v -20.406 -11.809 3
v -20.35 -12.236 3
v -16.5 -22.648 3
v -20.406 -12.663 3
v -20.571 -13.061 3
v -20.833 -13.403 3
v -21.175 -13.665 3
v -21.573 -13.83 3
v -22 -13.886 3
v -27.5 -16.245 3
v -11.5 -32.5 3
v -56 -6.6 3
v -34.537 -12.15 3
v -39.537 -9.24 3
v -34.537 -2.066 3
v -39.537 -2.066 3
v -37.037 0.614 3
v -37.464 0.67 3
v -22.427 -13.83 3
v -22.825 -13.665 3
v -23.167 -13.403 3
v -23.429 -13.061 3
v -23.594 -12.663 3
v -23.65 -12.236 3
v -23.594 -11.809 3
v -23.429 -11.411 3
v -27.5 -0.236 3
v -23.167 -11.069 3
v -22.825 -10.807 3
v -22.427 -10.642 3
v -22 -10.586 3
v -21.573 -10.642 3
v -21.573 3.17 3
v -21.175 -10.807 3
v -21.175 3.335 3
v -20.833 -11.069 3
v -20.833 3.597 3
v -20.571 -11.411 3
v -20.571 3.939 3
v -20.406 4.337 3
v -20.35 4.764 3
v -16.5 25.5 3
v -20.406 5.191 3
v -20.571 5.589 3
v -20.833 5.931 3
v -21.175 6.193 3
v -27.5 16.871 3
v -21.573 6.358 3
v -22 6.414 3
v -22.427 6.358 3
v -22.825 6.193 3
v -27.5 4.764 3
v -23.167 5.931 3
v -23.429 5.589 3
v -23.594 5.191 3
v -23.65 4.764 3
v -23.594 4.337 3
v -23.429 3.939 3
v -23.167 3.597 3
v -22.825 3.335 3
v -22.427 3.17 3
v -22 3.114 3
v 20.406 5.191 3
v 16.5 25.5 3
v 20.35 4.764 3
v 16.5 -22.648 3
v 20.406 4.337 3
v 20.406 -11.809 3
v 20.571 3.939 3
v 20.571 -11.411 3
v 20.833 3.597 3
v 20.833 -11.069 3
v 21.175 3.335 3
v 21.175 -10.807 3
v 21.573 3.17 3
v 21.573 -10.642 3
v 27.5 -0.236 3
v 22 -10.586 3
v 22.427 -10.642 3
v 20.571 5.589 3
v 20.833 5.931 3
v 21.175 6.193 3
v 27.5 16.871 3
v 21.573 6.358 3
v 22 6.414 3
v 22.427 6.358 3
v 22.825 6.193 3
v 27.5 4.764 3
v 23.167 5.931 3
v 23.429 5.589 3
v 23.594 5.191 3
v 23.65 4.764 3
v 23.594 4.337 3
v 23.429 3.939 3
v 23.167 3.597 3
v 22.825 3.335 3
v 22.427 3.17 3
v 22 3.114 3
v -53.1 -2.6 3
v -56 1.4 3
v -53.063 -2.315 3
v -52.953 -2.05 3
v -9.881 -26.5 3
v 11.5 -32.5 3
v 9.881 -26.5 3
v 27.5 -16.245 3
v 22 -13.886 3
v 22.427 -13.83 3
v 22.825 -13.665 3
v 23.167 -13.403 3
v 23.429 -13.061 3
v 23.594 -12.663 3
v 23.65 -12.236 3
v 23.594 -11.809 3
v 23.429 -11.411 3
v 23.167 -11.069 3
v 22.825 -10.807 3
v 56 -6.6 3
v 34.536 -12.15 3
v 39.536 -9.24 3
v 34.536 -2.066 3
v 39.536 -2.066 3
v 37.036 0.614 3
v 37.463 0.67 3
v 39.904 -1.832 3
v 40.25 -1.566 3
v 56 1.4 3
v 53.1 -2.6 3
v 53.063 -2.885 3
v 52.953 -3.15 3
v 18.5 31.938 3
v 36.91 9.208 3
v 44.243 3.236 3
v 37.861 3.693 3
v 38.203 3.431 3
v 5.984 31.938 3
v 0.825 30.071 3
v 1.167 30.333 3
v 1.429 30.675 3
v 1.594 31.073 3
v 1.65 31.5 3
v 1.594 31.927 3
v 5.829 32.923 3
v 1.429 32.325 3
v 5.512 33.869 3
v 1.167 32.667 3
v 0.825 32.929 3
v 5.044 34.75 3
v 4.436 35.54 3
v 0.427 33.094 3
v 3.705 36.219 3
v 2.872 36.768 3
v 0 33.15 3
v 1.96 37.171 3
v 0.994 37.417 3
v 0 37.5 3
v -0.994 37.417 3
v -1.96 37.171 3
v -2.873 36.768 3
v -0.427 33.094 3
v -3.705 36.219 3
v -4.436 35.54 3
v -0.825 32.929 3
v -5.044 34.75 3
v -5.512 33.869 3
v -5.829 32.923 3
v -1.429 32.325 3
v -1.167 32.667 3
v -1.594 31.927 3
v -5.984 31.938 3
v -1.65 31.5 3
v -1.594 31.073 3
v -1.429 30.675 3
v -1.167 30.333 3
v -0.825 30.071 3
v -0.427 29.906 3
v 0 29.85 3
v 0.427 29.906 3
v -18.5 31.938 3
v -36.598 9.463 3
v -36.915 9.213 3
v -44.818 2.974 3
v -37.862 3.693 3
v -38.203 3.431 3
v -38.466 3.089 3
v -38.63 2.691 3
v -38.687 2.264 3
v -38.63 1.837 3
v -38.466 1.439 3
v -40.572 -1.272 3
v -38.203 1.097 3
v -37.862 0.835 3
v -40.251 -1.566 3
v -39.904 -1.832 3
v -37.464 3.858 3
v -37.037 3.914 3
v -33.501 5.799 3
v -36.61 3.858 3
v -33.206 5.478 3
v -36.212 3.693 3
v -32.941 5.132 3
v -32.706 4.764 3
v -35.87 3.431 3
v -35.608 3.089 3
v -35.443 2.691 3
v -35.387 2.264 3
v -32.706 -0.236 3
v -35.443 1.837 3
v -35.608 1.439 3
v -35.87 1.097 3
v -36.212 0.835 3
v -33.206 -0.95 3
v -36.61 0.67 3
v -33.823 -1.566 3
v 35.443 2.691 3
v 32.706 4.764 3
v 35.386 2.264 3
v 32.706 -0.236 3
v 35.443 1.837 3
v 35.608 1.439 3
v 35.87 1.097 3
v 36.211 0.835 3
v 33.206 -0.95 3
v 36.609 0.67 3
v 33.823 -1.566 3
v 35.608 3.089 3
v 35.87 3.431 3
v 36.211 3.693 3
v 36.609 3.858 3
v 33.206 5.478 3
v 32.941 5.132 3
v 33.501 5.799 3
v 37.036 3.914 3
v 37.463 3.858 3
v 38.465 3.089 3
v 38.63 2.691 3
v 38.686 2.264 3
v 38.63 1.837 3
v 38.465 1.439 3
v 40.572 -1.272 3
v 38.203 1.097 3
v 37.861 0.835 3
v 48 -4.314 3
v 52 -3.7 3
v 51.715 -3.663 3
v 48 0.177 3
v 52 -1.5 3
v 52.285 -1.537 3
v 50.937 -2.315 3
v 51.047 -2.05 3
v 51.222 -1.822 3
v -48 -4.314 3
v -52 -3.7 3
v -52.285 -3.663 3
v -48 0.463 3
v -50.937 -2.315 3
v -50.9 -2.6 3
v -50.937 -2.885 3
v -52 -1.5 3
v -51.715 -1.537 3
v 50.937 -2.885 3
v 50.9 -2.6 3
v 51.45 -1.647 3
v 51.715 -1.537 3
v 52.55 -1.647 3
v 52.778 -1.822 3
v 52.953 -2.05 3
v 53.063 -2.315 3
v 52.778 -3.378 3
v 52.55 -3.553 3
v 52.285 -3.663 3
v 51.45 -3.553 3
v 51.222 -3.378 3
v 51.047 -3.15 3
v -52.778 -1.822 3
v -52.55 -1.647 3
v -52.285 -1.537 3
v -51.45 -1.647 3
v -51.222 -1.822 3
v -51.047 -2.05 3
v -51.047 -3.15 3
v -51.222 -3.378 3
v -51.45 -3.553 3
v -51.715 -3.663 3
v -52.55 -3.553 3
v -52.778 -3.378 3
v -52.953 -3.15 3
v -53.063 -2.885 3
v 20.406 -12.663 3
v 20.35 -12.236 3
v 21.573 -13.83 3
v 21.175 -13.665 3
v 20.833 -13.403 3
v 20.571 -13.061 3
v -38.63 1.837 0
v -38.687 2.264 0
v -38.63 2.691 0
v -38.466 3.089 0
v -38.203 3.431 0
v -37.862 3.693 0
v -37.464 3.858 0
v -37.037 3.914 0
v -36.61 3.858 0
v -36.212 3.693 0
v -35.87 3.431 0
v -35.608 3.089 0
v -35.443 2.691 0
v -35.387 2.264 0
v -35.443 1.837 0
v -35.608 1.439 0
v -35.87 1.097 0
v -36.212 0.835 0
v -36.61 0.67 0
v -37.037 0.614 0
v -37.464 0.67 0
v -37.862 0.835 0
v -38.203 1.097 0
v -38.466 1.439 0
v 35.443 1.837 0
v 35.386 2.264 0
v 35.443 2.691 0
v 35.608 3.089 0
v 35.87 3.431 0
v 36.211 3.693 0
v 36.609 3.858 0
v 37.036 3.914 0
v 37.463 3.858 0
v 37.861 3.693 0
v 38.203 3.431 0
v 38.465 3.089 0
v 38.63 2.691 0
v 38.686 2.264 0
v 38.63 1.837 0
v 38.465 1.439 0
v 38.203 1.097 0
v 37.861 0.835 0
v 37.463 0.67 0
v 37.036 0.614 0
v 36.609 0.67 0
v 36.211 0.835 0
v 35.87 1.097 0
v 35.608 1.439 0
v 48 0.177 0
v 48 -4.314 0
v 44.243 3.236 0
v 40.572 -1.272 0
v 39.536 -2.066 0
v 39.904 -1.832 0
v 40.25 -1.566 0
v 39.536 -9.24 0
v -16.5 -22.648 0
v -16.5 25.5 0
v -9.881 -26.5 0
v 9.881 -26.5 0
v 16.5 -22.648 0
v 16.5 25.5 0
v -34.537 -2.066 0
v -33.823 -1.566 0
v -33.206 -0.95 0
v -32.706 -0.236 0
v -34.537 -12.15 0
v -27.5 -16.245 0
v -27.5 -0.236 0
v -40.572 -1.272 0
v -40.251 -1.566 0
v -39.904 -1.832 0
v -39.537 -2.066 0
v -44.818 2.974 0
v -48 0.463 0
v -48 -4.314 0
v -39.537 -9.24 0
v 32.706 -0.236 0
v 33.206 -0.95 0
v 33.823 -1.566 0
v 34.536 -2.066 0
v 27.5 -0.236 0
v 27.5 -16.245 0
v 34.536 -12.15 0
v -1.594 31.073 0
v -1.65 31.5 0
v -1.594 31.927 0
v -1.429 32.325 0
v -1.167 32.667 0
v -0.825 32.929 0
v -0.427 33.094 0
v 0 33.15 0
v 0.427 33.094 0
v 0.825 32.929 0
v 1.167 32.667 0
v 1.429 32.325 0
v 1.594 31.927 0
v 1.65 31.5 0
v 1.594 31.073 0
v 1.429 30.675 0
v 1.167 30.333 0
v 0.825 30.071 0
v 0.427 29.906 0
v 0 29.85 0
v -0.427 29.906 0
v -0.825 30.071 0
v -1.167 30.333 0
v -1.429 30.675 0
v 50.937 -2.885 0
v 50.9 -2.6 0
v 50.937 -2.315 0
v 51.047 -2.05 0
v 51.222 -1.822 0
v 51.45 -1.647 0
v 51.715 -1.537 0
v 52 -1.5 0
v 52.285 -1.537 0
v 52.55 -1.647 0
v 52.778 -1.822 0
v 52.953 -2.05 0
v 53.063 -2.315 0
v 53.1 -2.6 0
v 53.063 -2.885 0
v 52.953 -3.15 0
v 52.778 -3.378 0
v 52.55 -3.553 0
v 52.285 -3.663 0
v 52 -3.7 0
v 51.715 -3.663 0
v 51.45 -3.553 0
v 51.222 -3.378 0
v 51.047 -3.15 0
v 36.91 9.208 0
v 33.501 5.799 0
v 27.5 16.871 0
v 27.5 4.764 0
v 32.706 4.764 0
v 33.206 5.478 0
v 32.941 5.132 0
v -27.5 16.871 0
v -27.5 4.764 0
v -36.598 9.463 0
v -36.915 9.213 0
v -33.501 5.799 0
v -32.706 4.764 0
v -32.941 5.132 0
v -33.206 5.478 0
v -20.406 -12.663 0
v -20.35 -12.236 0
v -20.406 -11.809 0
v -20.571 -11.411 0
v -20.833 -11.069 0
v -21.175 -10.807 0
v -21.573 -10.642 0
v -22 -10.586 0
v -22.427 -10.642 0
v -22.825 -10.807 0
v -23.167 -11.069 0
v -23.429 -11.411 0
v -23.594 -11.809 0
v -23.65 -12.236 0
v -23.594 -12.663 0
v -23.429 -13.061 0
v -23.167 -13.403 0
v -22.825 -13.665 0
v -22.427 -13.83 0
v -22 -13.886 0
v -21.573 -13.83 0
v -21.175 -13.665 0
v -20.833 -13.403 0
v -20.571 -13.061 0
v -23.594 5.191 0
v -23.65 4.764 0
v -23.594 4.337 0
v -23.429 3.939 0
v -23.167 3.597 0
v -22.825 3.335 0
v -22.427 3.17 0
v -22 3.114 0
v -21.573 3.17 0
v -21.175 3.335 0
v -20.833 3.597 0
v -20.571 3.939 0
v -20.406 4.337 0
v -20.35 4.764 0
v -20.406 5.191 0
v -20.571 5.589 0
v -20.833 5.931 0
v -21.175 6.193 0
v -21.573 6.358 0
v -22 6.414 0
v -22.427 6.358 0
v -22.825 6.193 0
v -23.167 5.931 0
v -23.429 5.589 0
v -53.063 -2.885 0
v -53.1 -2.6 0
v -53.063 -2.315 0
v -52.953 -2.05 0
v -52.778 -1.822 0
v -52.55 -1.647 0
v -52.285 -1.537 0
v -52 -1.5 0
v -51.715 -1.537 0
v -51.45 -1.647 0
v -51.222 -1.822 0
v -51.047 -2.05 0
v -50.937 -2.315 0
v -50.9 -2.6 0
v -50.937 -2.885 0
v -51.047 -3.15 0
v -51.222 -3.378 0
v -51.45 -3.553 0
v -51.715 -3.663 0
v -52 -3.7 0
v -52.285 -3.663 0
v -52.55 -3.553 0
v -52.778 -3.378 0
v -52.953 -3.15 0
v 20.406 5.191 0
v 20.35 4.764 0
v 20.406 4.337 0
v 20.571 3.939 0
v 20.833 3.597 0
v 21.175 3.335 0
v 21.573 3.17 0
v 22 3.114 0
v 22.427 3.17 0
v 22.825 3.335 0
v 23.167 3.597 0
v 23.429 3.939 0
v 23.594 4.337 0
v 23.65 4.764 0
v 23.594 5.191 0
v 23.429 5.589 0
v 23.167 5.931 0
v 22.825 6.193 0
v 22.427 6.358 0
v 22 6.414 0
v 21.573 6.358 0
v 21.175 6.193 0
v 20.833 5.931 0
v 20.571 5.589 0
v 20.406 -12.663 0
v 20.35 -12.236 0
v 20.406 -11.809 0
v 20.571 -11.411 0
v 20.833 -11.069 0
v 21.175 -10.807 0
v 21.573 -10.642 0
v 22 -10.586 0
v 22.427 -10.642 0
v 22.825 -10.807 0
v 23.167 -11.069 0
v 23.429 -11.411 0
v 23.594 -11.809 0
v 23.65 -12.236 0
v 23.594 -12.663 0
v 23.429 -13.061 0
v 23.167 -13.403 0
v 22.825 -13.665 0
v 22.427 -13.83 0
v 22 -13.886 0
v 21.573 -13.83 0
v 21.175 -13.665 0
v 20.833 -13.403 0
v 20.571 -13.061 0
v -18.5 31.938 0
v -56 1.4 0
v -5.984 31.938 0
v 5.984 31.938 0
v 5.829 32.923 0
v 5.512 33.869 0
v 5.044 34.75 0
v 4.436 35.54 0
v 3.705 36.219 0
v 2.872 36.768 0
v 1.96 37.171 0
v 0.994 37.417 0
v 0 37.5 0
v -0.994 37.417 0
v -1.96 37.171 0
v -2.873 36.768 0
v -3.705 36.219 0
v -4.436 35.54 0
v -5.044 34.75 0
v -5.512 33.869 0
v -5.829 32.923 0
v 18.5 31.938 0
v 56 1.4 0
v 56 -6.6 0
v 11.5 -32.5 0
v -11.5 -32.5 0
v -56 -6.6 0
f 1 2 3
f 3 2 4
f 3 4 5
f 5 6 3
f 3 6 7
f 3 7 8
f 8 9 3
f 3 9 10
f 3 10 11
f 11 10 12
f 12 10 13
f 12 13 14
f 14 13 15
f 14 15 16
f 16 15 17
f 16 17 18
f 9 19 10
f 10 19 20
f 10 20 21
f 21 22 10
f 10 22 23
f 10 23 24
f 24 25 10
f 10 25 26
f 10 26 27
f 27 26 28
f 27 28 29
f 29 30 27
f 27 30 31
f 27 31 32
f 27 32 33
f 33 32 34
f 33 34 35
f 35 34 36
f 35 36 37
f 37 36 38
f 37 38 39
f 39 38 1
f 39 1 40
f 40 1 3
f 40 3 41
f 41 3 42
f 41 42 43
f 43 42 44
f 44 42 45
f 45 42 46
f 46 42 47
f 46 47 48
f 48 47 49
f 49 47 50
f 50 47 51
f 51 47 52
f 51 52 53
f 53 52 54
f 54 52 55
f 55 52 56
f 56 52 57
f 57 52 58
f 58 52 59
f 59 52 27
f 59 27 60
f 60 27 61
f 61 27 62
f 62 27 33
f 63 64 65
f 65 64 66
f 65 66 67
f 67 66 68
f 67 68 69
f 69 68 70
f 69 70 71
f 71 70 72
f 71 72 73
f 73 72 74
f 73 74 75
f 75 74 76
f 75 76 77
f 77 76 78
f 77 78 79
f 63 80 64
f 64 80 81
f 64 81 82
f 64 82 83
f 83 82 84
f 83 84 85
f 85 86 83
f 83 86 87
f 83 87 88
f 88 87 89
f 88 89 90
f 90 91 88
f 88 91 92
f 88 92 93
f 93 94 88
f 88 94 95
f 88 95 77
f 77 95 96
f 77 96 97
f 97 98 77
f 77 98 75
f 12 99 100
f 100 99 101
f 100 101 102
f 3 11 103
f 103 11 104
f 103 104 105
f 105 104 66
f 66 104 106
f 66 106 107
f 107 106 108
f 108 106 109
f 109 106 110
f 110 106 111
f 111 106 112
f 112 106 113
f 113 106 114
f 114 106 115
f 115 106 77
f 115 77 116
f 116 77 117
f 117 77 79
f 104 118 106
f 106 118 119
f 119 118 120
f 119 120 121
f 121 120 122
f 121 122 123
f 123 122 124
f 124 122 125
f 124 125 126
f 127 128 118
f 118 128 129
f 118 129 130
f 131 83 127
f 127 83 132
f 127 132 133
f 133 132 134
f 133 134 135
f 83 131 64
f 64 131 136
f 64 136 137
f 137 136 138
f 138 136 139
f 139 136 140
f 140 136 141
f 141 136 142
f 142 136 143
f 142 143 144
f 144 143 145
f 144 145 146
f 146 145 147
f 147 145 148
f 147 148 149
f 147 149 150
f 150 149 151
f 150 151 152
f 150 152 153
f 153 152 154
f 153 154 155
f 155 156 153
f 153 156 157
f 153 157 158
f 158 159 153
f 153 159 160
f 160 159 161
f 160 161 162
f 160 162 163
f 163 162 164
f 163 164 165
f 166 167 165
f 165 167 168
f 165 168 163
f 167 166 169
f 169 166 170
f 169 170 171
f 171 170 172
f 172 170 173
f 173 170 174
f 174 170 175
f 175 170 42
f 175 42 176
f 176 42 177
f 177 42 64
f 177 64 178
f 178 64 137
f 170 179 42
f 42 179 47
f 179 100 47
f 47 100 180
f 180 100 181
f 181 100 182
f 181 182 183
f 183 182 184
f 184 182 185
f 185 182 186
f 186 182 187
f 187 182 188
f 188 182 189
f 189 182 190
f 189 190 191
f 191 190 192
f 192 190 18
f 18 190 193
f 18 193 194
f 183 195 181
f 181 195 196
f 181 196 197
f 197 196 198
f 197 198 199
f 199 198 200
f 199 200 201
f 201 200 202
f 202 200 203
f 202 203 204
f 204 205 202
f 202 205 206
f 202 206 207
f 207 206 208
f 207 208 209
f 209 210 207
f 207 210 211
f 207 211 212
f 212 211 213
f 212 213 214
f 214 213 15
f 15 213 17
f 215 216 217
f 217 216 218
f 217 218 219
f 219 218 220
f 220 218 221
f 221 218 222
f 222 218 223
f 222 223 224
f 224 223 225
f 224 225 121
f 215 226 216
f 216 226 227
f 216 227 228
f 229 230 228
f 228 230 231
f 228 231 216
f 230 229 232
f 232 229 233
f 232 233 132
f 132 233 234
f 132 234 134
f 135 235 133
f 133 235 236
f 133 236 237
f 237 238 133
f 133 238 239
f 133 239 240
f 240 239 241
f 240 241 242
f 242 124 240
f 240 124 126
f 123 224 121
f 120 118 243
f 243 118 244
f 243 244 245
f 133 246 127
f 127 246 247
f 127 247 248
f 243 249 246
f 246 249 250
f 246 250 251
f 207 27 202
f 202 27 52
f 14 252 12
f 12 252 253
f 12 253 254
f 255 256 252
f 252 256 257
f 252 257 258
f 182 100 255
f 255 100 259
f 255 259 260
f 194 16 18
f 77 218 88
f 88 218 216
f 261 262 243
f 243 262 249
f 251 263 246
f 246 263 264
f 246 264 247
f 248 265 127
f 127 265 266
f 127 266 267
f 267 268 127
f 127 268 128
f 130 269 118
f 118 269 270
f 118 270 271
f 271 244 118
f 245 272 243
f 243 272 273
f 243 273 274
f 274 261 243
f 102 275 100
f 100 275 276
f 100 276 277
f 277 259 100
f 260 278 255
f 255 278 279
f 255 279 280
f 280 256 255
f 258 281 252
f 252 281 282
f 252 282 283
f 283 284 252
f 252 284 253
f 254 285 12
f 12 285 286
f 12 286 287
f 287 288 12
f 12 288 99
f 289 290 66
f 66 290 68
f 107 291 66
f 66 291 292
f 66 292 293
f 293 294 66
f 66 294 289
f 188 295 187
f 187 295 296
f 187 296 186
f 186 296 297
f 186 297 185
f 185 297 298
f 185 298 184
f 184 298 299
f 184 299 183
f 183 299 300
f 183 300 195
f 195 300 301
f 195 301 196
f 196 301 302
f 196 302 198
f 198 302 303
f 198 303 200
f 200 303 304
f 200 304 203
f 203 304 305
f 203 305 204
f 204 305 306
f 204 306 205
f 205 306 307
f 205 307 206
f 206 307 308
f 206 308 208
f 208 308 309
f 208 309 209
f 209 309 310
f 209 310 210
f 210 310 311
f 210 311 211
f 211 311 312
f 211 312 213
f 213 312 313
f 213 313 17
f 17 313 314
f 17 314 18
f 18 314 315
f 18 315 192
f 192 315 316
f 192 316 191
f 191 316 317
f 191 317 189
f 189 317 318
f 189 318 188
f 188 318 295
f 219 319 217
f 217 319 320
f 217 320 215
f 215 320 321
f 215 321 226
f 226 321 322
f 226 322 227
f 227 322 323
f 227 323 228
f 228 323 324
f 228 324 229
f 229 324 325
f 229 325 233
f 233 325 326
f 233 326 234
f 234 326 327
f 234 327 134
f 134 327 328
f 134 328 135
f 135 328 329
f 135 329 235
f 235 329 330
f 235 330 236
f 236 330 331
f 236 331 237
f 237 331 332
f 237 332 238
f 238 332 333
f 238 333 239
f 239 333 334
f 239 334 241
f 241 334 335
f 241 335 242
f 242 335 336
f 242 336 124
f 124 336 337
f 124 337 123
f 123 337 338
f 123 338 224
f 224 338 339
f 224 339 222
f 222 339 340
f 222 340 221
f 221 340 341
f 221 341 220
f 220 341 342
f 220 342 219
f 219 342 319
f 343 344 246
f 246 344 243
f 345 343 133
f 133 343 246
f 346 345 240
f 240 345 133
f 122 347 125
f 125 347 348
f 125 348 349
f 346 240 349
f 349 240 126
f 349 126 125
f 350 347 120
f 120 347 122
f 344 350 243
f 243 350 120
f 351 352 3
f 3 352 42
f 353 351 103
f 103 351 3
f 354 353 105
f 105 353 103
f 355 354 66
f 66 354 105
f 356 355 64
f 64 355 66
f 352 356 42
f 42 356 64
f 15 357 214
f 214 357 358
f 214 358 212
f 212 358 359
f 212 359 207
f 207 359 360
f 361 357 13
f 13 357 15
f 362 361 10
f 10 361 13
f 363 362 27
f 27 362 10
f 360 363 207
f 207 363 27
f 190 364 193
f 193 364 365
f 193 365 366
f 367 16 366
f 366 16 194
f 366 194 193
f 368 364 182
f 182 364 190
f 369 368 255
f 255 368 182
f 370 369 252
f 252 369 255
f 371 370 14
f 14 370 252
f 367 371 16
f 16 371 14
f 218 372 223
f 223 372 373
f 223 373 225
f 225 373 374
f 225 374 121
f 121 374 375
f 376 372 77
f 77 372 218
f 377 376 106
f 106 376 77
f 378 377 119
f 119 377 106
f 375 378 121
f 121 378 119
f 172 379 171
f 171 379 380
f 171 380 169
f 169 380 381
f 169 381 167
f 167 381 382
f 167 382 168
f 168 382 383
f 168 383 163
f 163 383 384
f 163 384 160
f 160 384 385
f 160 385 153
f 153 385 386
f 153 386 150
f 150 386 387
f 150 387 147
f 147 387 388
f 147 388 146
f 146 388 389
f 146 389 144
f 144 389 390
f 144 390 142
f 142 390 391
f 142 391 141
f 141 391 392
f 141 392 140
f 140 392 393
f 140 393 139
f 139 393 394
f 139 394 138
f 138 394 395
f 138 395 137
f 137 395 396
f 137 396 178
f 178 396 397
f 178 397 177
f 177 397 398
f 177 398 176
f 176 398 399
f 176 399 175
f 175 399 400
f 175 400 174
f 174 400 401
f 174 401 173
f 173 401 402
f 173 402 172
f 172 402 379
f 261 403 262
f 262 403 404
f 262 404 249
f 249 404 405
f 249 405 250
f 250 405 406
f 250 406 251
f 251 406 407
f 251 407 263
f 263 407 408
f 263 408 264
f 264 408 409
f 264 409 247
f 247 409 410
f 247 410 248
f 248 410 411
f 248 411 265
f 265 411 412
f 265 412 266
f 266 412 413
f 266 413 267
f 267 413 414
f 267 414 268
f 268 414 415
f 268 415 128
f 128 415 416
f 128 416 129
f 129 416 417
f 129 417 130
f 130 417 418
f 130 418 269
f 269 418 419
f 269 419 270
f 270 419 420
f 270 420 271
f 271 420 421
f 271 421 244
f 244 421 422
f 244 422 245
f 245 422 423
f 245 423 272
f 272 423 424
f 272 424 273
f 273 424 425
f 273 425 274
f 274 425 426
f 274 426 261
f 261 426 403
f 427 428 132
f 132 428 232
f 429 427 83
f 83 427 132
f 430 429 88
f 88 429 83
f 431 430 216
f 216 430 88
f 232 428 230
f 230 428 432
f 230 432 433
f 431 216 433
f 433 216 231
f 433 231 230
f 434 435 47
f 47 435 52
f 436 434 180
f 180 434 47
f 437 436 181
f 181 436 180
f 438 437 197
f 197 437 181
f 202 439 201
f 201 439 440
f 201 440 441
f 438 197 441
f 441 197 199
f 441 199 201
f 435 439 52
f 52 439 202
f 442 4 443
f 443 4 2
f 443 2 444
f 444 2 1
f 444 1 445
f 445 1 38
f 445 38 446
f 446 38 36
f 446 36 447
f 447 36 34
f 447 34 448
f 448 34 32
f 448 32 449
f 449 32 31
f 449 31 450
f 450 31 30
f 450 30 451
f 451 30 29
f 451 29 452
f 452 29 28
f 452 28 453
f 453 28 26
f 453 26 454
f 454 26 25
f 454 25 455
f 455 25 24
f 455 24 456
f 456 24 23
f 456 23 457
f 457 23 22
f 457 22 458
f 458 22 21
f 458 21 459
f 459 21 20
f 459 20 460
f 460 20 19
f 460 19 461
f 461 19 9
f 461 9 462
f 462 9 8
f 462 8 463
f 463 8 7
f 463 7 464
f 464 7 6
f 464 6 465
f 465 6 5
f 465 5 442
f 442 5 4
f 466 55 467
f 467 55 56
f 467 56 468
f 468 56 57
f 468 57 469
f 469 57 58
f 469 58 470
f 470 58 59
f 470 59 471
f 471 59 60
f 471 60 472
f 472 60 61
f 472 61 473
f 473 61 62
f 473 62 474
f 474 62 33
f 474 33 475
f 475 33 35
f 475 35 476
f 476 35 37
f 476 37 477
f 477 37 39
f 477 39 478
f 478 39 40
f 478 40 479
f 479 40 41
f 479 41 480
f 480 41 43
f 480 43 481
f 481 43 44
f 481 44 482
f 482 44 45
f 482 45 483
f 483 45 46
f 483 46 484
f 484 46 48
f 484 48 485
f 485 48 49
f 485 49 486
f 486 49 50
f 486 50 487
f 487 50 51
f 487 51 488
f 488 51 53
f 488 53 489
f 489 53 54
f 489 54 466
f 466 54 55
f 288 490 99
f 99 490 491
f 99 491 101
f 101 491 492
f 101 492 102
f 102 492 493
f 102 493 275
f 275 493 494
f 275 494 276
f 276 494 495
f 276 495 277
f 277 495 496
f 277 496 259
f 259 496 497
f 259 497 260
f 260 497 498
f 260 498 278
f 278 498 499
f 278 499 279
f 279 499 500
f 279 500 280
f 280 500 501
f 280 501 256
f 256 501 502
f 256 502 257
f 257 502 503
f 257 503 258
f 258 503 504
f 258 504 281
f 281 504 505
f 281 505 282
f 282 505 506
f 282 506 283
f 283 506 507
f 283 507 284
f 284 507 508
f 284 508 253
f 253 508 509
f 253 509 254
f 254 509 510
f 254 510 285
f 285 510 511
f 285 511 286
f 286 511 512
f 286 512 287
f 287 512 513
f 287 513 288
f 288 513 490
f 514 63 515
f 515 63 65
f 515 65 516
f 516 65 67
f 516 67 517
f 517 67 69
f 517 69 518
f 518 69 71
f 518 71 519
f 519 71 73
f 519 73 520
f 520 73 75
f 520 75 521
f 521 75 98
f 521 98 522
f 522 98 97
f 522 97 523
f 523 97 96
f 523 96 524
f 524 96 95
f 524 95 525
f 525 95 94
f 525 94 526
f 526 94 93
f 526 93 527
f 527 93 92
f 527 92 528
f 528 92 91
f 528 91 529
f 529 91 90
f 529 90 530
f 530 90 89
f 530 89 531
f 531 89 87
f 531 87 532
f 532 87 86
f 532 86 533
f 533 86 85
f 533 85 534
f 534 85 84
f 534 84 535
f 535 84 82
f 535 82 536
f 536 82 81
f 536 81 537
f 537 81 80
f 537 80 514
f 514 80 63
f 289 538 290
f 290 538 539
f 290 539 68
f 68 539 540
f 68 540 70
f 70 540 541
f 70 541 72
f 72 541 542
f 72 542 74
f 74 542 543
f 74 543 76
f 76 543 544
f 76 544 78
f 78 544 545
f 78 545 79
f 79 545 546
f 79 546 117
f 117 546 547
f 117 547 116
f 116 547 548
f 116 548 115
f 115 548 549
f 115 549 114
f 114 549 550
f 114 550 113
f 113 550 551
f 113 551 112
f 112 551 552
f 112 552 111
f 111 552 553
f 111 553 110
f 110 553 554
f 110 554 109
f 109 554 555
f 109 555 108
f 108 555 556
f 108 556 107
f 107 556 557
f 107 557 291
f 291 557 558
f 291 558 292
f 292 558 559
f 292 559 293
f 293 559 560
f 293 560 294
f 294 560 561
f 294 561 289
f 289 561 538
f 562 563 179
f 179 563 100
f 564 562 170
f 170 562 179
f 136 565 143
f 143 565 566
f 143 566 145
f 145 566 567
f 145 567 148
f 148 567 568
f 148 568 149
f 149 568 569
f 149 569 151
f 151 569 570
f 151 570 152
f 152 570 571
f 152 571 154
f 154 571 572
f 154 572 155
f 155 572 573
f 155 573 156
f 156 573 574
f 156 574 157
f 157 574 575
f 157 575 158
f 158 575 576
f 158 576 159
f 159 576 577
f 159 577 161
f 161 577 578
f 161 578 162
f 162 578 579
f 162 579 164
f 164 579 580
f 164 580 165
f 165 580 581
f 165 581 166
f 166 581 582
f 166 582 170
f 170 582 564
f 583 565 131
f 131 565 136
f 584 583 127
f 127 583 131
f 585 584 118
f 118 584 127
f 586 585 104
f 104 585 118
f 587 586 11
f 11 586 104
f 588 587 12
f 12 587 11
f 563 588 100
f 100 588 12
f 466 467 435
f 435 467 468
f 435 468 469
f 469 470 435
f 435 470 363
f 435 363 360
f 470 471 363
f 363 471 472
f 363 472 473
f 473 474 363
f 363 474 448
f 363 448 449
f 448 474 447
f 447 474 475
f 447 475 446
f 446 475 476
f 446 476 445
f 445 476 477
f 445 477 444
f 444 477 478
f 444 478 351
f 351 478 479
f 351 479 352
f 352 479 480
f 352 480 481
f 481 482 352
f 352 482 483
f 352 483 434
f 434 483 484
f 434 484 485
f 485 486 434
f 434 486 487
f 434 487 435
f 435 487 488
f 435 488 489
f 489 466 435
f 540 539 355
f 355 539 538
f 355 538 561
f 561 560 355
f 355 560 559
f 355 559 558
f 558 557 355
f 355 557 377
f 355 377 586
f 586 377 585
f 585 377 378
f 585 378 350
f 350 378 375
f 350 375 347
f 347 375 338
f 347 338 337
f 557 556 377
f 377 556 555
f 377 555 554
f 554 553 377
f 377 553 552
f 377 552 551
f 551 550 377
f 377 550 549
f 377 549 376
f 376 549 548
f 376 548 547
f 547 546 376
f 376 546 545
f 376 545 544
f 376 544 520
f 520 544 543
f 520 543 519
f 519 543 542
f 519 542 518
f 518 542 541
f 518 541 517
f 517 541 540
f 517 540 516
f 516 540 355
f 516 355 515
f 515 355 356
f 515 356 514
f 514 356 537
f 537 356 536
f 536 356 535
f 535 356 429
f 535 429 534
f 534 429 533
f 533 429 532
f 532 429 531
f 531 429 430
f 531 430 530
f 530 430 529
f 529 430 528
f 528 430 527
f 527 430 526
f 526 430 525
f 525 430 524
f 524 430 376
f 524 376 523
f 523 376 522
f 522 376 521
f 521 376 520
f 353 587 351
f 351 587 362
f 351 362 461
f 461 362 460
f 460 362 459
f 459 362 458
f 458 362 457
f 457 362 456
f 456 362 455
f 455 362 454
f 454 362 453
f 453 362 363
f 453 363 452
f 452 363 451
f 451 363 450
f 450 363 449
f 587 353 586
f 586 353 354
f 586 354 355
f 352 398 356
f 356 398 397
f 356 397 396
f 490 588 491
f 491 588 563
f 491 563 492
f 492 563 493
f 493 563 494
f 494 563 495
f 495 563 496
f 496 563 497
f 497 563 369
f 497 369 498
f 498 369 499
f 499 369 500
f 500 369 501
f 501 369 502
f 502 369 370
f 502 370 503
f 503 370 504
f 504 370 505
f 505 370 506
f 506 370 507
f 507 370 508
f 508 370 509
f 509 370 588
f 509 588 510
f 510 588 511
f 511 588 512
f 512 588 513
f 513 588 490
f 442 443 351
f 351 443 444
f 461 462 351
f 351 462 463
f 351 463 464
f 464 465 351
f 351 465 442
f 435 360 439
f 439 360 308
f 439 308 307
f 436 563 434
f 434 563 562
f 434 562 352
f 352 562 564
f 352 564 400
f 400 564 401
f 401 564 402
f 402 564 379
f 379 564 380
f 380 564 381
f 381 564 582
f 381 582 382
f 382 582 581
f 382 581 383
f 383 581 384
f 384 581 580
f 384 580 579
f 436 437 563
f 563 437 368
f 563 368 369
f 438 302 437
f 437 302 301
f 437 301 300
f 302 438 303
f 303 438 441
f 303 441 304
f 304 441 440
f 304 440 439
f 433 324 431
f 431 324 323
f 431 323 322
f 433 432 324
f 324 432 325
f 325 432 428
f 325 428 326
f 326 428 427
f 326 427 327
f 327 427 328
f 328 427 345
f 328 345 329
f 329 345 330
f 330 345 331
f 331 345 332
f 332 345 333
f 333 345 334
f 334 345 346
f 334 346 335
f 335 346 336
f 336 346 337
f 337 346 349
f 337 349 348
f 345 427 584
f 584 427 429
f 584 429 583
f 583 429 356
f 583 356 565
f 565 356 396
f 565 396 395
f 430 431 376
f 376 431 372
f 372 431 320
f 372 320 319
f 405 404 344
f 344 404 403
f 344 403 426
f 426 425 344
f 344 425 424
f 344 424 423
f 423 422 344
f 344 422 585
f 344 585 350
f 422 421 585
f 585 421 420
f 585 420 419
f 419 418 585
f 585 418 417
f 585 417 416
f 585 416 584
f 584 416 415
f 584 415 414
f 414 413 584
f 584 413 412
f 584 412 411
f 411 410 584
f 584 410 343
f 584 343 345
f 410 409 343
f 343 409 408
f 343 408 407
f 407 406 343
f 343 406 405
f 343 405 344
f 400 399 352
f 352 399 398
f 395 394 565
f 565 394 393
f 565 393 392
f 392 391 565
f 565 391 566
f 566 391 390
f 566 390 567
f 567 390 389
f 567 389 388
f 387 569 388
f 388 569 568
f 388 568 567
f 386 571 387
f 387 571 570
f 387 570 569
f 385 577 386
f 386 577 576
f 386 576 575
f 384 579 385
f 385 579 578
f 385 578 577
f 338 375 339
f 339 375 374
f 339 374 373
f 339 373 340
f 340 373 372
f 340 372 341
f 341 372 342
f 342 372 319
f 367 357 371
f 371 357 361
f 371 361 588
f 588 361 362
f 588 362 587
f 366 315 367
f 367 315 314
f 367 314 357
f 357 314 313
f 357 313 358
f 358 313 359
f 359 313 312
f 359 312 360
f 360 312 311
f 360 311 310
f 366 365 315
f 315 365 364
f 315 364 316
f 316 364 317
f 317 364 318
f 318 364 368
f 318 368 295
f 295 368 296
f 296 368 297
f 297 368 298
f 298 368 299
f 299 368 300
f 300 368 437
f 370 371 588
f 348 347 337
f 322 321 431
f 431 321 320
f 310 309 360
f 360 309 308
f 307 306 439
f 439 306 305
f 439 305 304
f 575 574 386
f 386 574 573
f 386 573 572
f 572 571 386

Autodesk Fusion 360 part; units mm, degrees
sketch "Sketch1" plane through (0, 0, 0) normal (0, 0, 1) x (1, 0, 0)
  line L0 (-0.0001, 25.5) -> (-0.0001, 31.5)
  circle A0 centre (-0.0001, 31.5) radius 1.65
  circle A1 centre (-0.0001, 31.5) radius 6
  line L1 (37.0364, 2.2639) -> (-37.0366, 2.2639)
  circle A2 centre (37.0364, 2.2639) radius 1.65
  circle A3 centre (-37.0366, 2.2639) radius 1.65
  line L2 (-0.0001, 31.5) -> (37.0364, 2.2639)
  line L3 (-0.0001, 31.5) -> (-37.0366, 2.2639)
  line L4 (56, 1.4) -> (56, -6.6)
  line L5 (-56, -6.6) -> (-56, 1.4)
  line L6 (-18.5, 31.9382) -> (18.5, 31.9382)
  line L7 (11.4999, -32.5) -> (-11.5001, -32.5)
  line L8 (-11.5001, -32.5) -> (-56, -6.6)
  line L9 (11.4999, -32.5) -> (56, -6.6)
  line L10 (56, -2.6) -> (52, -2.6)
  circle A4 centre (52, -2.6) radius 1.1
  line L11 (-56, -2.6) -> (-52, -2.6)
  circle A5 centre (-52, -2.6) radius 1.1
  line L12 (-22.0001, 4.7639) -> (-22.0001, 2.2639)
  line L13 (-0.0001, 2.2639) -> (-22.0001, 2.2639)
  line L14 (-22.0001, 2.2639) -> (-22.0001, 4.7639)
  line L15 (-22.0001, 4.7639) -> (-0.0001, 4.7639)
  line L16 (-0.0001, 4.7639) -> (-0.0001, 2.2639)
  line L17 (-0.0001, 4.7639) -> (21.9999, 4.7639)
  line L18 (21.9999, 4.7639) -> (21.9999, 2.2639)
  line L19 (21.9999, 2.2639) -> (-0.0001, 2.2639)
  line L20 (-0.0001, 2.2639) -> (-0.0001, 4.7639)
  circle A6 centre (-22.0001, 4.7639) radius 1.65
  circle A7 centre (21.9999, 4.7639) radius 1.65
  line L21 (21.9999, 4.7639) -> (21.9999, -12.2361)
  line L22 (-22.0001, 4.7639) -> (-22.0001, -12.2361)
  circle A8 centre (21.9999, -12.2361) radius 1.65
  circle A9 centre (-22.0001, -12.2361) radius 1.65
  circle A10 centre (-22.0001, -12.2361) radius 5.5
  circle A11 centre (-22.0001, 4.7639) radius 5.5
  line L23 (-27.5001, -17.7361) -> (-16.5001, -17.7361)
  line L24 (-16.5001, -17.7361) -> (-16.5001, 10.2639)
  line L25 (-16.5001, 10.2639) -> (-27.5001, 10.2639)
  line L26 (-27.5001, 10.2639) -> (-27.5001, -17.7361)
  line L27 (27.4999, -17.7361) -> (27.4999, 10.2639)
  line L28 (27.4999, 10.2639) -> (16.4999, 10.2639)
  line L29 (16.4999, 10.2639) -> (16.4999, -17.7361)
  line L30 (16.4999, -17.7361) -> (27.4999, -17.7361)
  line L31 (56, -6.6) -> (48, -6.6)
  line L32 (48, -6.6) -> (48, 1.4)
  line L33 (48, 1.4) -> (56, 1.4)
  line L34 (56, 1.4) -> (56, -6.6)
  line L35 (-56, -6.6) -> (-48, -6.6)
  line L36 (-48, -6.6) -> (-48, 1.4)
  line L37 (-48, 1.4) -> (-56, 1.4)
  line L38 (-56, 1.4) -> (-56, -6.6)
  line L39 (-20.5229, -27.2485) -> (-17.5048, -22.0629)
  line L40 (-40.4384, -15.6572) -> (-37.4202, -10.4716)
  line L41 (-17.5048, -22.0629) -> (-37.4202, -10.4716)
  line L42 (-37.4202, -10.4716) -> (-48, -4.3139)
  line L43 (-17.5048, -22.0629) -> (-11.5001, -25.5578)
  line L44 (22.8887, -25.8715) -> (19.8706, -20.6859)
  line L45 (39.4309, -16.2436) -> (36.4127, -11.058)
  line L46 (36.4127, -11.058) -> (19.8706, -20.6859)
  line L47 (36.4127, -11.058) -> (48, -4.3139)
  line L48 (19.8706, -20.6859) -> (11.4999, -25.5578)
  line L49 (56, 1.4) -> (18.5, 31.9382)
  line L50 (45.76, 9.7389) -> (41.9713, 5.0865)
  line L51 (31.8969, 21.0284) -> (28.1081, 16.376)
  line L52 (41.9713, 5.0865) -> (28.1081, 16.376)
  line L53 (28.1081, 16.376) -> (15.6762, 26.5)
  line L54 (41.9713, 5.0865) -> (48, 0.177)
  circle A12 centre (37.0364, 2.2639) radius 5
  line L55 (32.0364, -2.7361) -> (42.0364, -2.7361)
  line L56 (42.0364, -2.7361) -> (42.0364, 7.2639)
  line L57 (42.0364, 7.2639) -> (32.0364, 7.2639)
  line L58 (32.0364, 7.2639) -> (32.0364, -2.7361)
  line L59 (42.0364, -2.7361) -> (37.0364, 2.2639)
  line L60 (32.0364, 7.2639) -> (37.0364, 2.2639)
  line L61 (40.572, -1.2717) -> (44.2431, 3.2364)
  line L62 (33.5009, 5.7994) -> (36.9098, 9.2083)
  line L63 (-56, 1.4) -> (-18.5, 31.9382)
  line L64 (-30.0227, 22.5547) -> (-26.234, 17.9022)
  line L65 (-40.3156, 14.1727) -> (-36.5979, 9.4632)
  line L66 (-26.234, 17.9022) -> (-36.5979, 9.4632)
  line L67 (-36.5979, 9.4632) -> (-48, 0.4625)
  line L68 (-26.234, 17.9022) -> (-15.6762, 26.5)
  line L69 (7.8699, -32.5) -> (7.8699, -26.5)
  line L70 (-4.112, -32.5) -> (-4.112, -26.5)
  line L71 (7.8699, -26.5) -> (-4.112, -26.5)
  line L72 (11.4999, -25.5578) -> (9.881, -26.5)
  line L73 (9.881, -26.5) -> (7.8699, -26.5)
  line L74 (-4.112, -26.5) -> (-9.8811, -26.5)
  line L75 (-9.8811, -26.5) -> (-11.5001, -25.5578)
  line L76 (16.4999, -17.7361) -> (16.4999, -22.6477)
  line L77 (-16.5001, -17.7361) -> (-16.5001, -22.6477)
  line L78 (27.4999, 10.2639) -> (27.4999, 16.8713)
  line L79 (-27.5001, 10.2639) -> (-27.5001, 16.8713)
  line L80 (-0.0001, 25.5) -> (16.9042, 25.5)
  line L81 (16.4999, 10.2639) -> (16.4999, 25.5)
  line L82 (-0.0001, 25.5) -> (-16.9042, 25.5)
  line L83 (-16.5001, 10.2639) -> (-16.5001, 25.5)
  line L84 (-42.0366, 7.2639) -> (-37.0366, 7.2639)
  line L85 (-37.0366, 7.2639) -> (-37.0366, 2.2639)
  line L86 (-32.0366, -2.7361) -> (-42.0366, -2.7361)
  line L87 (-42.0366, -2.7361) -> (-42.0366, 7.2639)
  line L88 (-42.0366, 7.2639) -> (-32.0366, 7.2639)
  line L89 (-32.0366, 7.2639) -> (-32.0366, -2.7361)
  line L90 (-32.0366, 7.2639) -> (-42.0366, -2.7361)
  circle A13 centre (-37.0366, 2.2639) radius 5
  line L91 (-33.501, 5.7994) -> (-36.9147, 9.2131)
  line L92 (-40.5721, -1.2717) -> (-44.8181, 2.9743)
  line L93 (37.0364, -2.7361) -> (34.5364, -2.7361)
  line L94 (37.0364, -2.7361) -> (39.5364, -2.7361)
  line L95 (39.5364, -2.7361) -> (39.5364, -9.2399)
  line L96 (39.5364, -2.7361) -> (39.5364, -2.0663)
  line L97 (34.5364, -2.7361) -> (34.5364, -2.0663)
  line L98 (34.5364, -2.7361) -> (34.5364, -12.15)
  line L99 (32.0364, 2.2639) -> (32.0364, 4.7639)
  line L100 (32.0364, 4.7639) -> (27.4999, 4.7639)
  line L101 (32.0364, 2.2639) -> (32.0364, -0.2361)
  line L102 (32.0364, -0.2361) -> (27.4999, -0.2361)
  line L103 (32.0364, -0.2361) -> (32.7063, -0.2361)
  line L104 (32.0364, 4.7639) -> (32.7063, 4.7639)
  line L105 (-32.0366, -0.2361) -> (-27.5001, -0.2361)
  line L106 (-32.0366, 4.7639) -> (-27.5001, 4.7639)
  line L107 (-32.0366, 4.7639) -> (-32.7064, 4.7639)
  line L108 (-32.0366, -0.2361) -> (-32.7064, -0.2361)
  line L109 (-37.0366, -2.7361) -> (-39.5366, -2.7361)
  line L110 (-37.0366, -2.7361) -> (-34.5366, -2.7361)
  line L111 (-34.5366, -2.7361) -> (-34.5366, -12.15)
  line L112 (-39.5366, -2.7361) -> (-39.5366, -9.2398)
  line L113 (23.6499, -12.2361) -> (20.3499, -12.2361)
  line L114 (20.3499, -12.2361) -> (20.3499, 4.7639)
  line L115 (20.3499, 4.7639) -> (23.6499, 4.7639)
  line L116 (23.6499, 4.7639) -> (23.6499, -12.2361)
  line L117 (-20.3501, -12.2361) -> (-23.6501, -12.2361)
  line L118 (-23.6501, -12.2361) -> (-23.6501, 4.7639)
  line L119 (-23.6501, 4.7639) -> (-20.3501, 4.7639)
  line L120 (-20.3501, 4.7639) -> (-20.3501, -12.2361)
  line L121 (-34.5366, -2.7361) -> (-34.5366, -2.0663)
  line L122 (-39.5366, -2.7361) -> (-39.5366, -2.0663)
  dimension "d3" = 6
  dimension "d4" = 3.3
  dimension "d5" = 12
  dimension "d20" = 3.3
  dimension "d21" = 3.3
  dimension "d24" = 112
  dimension "d25" = 8
  dimension "d26" = 37
  dimension "d30" = 2.2
  dimension "d31" = 4
  dimension "d32" = 4
  dimension "d33" = 2.2
  dimension "d36" = 22
  dimension "d37" = 2.5
  dimension "d38" = 22
  dimension "d39" = 2.5
  dimension "d41" = 3.3
  dimension "d42" = 3.3
  dimension "d58" = 17
  dimension "d59" = 17
  dimension "d60" = 3.3
  dimension "d61" = 3.3
  dimension "d62" = 11
  dimension "d63" = 11
  dimension "d64" = 8
  dimension "d65" = 8
  dimension "d66" = 6
  dimension "d67" = 6
  dimension "d68" = 6
  dimension "d69" = 6
  dimension "d70" = 6
  dimension "d71" = 6
  dimension "d72" = 10
  dimension "d73" = 6
  dimension "d74" = 6
  dimension "d75" = 6
  dimension "d76" = 6
  dimension "d79" = 5
  dimension "d82" = 10
  dimension "d83" = 2.5
  dimension "d84" = 2.5
  dimension "d85" = 2.5
  dimension "d86" = 2.5
  dimension "d87" = 2.5
  dimension "d88" = 2.5
sketch "Sketch1 (2)" plane through (0, 0, 0) normal (0, 0, 1) x (1, 0, 0) in component "carBodyServoPlate"
  line L0 (11.4999, -32.5) -> (-11.5001, -32.5)
  line L1 (-32.0366, -0.2361) -> (-27.5001, -0.2361)
  line L2 (-26.234, 17.9022) -> (-15.6762, 26.5)
  line L3 (-37.0366, 7.2639) -> (-37.0366, 2.2639)
  line L4 (-48, 1.4) -> (-56, 1.4)
  line L5 (-22.0001, 2.2639) -> (-22.0001, 4.7639)
  line L6 (-40.3156, 14.1727) -> (-36.5979, 9.4632)
  circle A0 centre (-22.0001, 4.7639) radius 1.65
  line L7 (-0.0001, 25.5) -> (-16.9042, 25.5)
  line L8 (-32.0366, 4.7639) -> (-32.7064, 4.7639)
  line L9 (-56, 1.4) -> (-18.5, 31.9382)
  line L10 (-0.0001, 4.7639) -> (21.9999, 4.7639)
  circle A1 centre (-37.0366, 2.2639) radius 1.65
  line L11 (-32.0366, 4.7639) -> (-27.5001, 4.7639)
  line L12 (-42.0366, 7.2639) -> (-32.0366, 7.2639)
  line L13 (-36.5979, 9.4632) -> (-48, 0.4625)
  line L14 (-32.0366, -0.2361) -> (-32.7064, -0.2361)
  line L15 (27.4999, 10.2639) -> (27.4999, 16.8713)
  line L16 (37.0364, -2.7361) -> (34.5364, -2.7361)
  line L17 (39.4309, -16.2436) -> (36.4127, -11.058)
  line L18 (16.4999, -17.7361) -> (16.4999, -22.6477)
  line L19 (32.0364, 2.2639) -> (32.0364, 4.7639)
  line L20 (-34.5366, -2.7361) -> (-34.5366, -2.0663)
  line L21 (32.0364, 2.2639) -> (32.0364, -0.2361)
  line L22 (28.1081, 16.376) -> (15.6762, 26.5)
  circle A2 centre (-22.0001, -12.2361) radius 5.5
  line L23 (-40.4384, -15.6572) -> (-37.4202, -10.4716)
  line L24 (32.0364, -2.7361) -> (42.0364, -2.7361)
  line L25 (45.76, 9.7389) -> (41.9713, 5.0865)
  line L26 (31.8969, 21.0284) -> (28.1081, 16.376)
  line L27 (-34.5366, -2.7361) -> (-34.5366, -12.15)
  line L28 (42.0364, 7.2639) -> (32.0364, 7.2639)
  line L29 (-27.5001, -17.7361) -> (-16.5001, -17.7361)
  line L30 (-4.112, -26.5) -> (-9.8811, -26.5)
  line L31 (27.4999, 10.2639) -> (16.4999, 10.2639)
  line L32 (-20.5229, -27.2485) -> (-17.5048, -22.0629)
  line L33 (-20.3501, -12.2361) -> (-23.6501, -12.2361)
  line L34 (32.0364, 4.7639) -> (27.4999, 4.7639)
  line L35 (39.5364, -2.7361) -> (39.5364, -9.2399)
  circle A3 centre (-52, -2.6) radius 1.1
  circle A4 centre (-22.0001, -12.2361) radius 1.65
  line L36 (32.0364, -0.2361) -> (32.7063, -0.2361)
  line L37 (32.0364, 7.2639) -> (37.0364, 2.2639)
  line L38 (39.5364, -2.7361) -> (39.5364, -2.0663)
  line L39 (7.8699, -32.5) -> (7.8699, -26.5)
  line L40 (-16.5001, -17.7361) -> (-16.5001, -22.6477)
  line L41 (11.4999, -25.5578) -> (9.881, -26.5)
  line L42 (36.4127, -11.058) -> (48, -4.3139)
  line L43 (36.4127, -11.058) -> (19.8706, -20.6859)
  circle A5 centre (21.9999, 4.7639) radius 1.65
  line L44 (-56, -2.6) -> (-52, -2.6)
  circle A6 centre (52, -2.6) radius 1.1
  line L45 (-4.112, -32.5) -> (-4.112, -26.5)
  line L46 (32.0364, 4.7639) -> (32.7063, 4.7639)
  circle A7 centre (37.0364, 2.2639) radius 1.65
  line L47 (34.5364, -2.7361) -> (34.5364, -12.15)
  line L48 (20.3499, 4.7639) -> (23.6499, 4.7639)
  line L49 (-39.5366, -2.7361) -> (-39.5366, -9.2398)
  line L50 (33.5009, 5.7994) -> (36.9098, 9.2083)
  line L51 (23.6499, -12.2361) -> (20.3499, -12.2361)
  line L52 (41.9713, 5.0865) -> (28.1081, 16.376)
  line L53 (-32.0366, 7.2639) -> (-42.0366, -2.7361)
  line L54 (-37.0366, -2.7361) -> (-39.5366, -2.7361)
  line L55 (41.9713, 5.0865) -> (48, 0.177)
  line L56 (-11.5001, -32.5) -> (-56, -6.6)
  line L57 (22.8887, -25.8715) -> (19.8706, -20.6859)
  line L58 (-20.3501, 4.7639) -> (-20.3501, -12.2361)
  line L59 (-23.6501, -12.2361) -> (-23.6501, 4.7639)
  line L60 (-9.8811, -26.5) -> (-11.5001, -25.5578)
  line L61 (-22.0001, 4.7639) -> (-22.0001, -12.2361)
  line L62 (21.9999, 4.7639) -> (21.9999, -12.2361)
  line L63 (-56, -6.6) -> (-56, 1.4)
  line L64 (20.3499, -12.2361) -> (20.3499, 4.7639)
  line L65 (56, 1.4) -> (56, -6.6)
  line L66 (-40.5721, -1.2717) -> (-44.8181, 2.9743)
  line L67 (42.0364, -2.7361) -> (42.0364, 7.2639)
  line L68 (42.0364, -2.7361) -> (37.0364, 2.2639)
  line L69 (-56, 1.4) -> (-56, -6.6)
  line L70 (-32.0366, -2.7361) -> (-42.0366, -2.7361)
  line L71 (-39.5366, -2.7361) -> (-39.5366, -2.0663)
  line L72 (56, 1.4) -> (56, -6.6)
  line L73 (16.4999, -17.7361) -> (27.4999, -17.7361)
  line L74 (-17.5048, -22.0629) -> (-11.5001, -25.5578)
  circle A8 centre (-37.0366, 2.2639) radius 5
  line L75 (56, 1.4) -> (18.5, 31.9382)
  line L76 (-27.5001, 10.2639) -> (-27.5001, -17.7361)
  line L77 (-56, -6.6) -> (-48, -6.6)
  line L78 (-0.0001, 4.7639) -> (-0.0001, 2.2639)
  line L79 (16.4999, 10.2639) -> (16.4999, 25.5)
  line L80 (27.4999, -17.7361) -> (27.4999, 10.2639)
  line L81 (32.0364, 7.2639) -> (32.0364, -2.7361)
  line L82 (-37.4202, -10.4716) -> (-48, -4.3139)
  line L83 (-37.0366, -2.7361) -> (-34.5366, -2.7361)
  line L84 (21.9999, 4.7639) -> (21.9999, 2.2639)
  line L85 (56, -6.6) -> (48, -6.6)
  line L86 (-16.5001, -17.7361) -> (-16.5001, 10.2639)
  line L87 (48, -6.6) -> (48, 1.4)
  line L88 (-17.5048, -22.0629) -> (-37.4202, -10.4716)
  line L89 (-27.5001, 10.2639) -> (-27.5001, 16.8713)
  line L90 (21.9999, 2.2639) -> (-0.0001, 2.2639)
  line L91 (-22.0001, 4.7639) -> (-22.0001, 2.2639)
  line L92 (-23.6501, 4.7639) -> (-20.3501, 4.7639)
  line L93 (-0.0001, 25.5) -> (16.9042, 25.5)
  line L94 (-16.5001, 10.2639) -> (-16.5001, 25.5)
  line L95 (-18.5, 31.9382) -> (18.5, 31.9382)
  line L96 (19.8706, -20.6859) -> (11.4999, -25.5578)
  line L97 (48, 1.4) -> (56, 1.4)
  line L98 (37.0364, -2.7361) -> (39.5364, -2.7361)
  line L99 (11.4999, -32.5) -> (56, -6.6)
  line L100 (40.572, -1.2717) -> (44.2431, 3.2364)
  circle A9 centre (21.9999, -12.2361) radius 1.65
  line L101 (32.0364, -0.2361) -> (27.4999, -0.2361)
  line L102 (34.5364, -2.7361) -> (34.5364, -2.0663)
  line L103 (9.881, -26.5) -> (7.8699, -26.5)
  line L104 (56, -2.6) -> (52, -2.6)
  line L105 (-0.0001, 2.2639) -> (-0.0001, 4.7639)
  line L106 (-26.234, 17.9022) -> (-36.5979, 9.4632)
  line L107 (-0.0001, 25.5) -> (-0.0001, 31.5)
  circle A10 centre (-0.0001, 31.5) radius 1.65
  line L108 (-33.501, 5.7994) -> (-36.9147, 9.2131)
  line L109 (7.8699, -26.5) -> (-4.112, -26.5)
  line L110 (-30.0227, 22.5547) -> (-26.234, 17.9022)
  line L111 (-32.0366, 7.2639) -> (-32.0366, -2.7361)
  line L112 (-22.0001, 4.7639) -> (-0.0001, 4.7639)
  line L113 (-16.5001, 10.2639) -> (-27.5001, 10.2639)
  line L114 (-42.0366, 7.2639) -> (-37.0366, 7.2639)
  circle A11 centre (-0.0001, 31.5) radius 6
  line L115 (-48, -6.6) -> (-48, 1.4)
  line L116 (37.0364, 2.2639) -> (-37.0366, 2.2639)
  line L117 (-42.0366, -2.7361) -> (-42.0366, 7.2639)
  circle A12 centre (-22.0001, 4.7639) radius 5.5
  line L118 (-0.0001, 31.5) -> (-37.0366, 2.2639)
  line L119 (-0.0001, 31.5) -> (37.0364, 2.2639)
  line L120 (23.6499, 4.7639) -> (23.6499, -12.2361)
  line L121 (-0.0001, 2.2639) -> (-22.0001, 2.2639)
  line L122 (16.4999, 10.2639) -> (16.4999, -17.7361)
  circle A13 centre (37.0364, 2.2639) radius 5
  dimension "d93" = 6
  dimension "d94" = 3.3
  dimension "d95" = 12
  dimension "d96" = 3.3
  dimension "d97" = 3.3
  dimension "d98" = 112
  dimension "d99" = 8
  dimension "d100" = 37
  dimension "d101" = 2.2
  dimension "d102" = 4
  dimension "d103" = 4
  dimension "d104" = 2.2
  dimension "d105" = 22
  dimension "d106" = 2.5
  dimension "d107" = 22
  dimension "d108" = 2.5
  dimension "d109" = 3.3
  dimension "d110" = 3.3
  dimension "d111" = 17
  dimension "d112" = 17
  dimension "d113" = 3.3
  dimension "d114" = 3.3
  dimension "d115" = 11
  dimension "d116" = 11
  dimension "d117" = 8
  dimension "d118" = 8
  dimension "d119" = 6
  dimension "d120" = 6
  dimension "d121" = 6
  dimension "d122" = 6
  dimension "d123" = 6
  dimension "d124" = 6
  dimension "d125" = 10
  dimension "d126" = 6
  dimension "d127" = 6
  dimension "d128" = 6
  dimension "d129" = 6
  dimension "d130" = 5
  dimension "d131" = 10
  dimension "d132" = 2.5
  dimension "d133" = 2.5
  dimension "d134" = 2.5
  dimension "d135" = 2.5
  dimension "d136" = 2.5
  dimension "d137" = 2.5
extrude "Extrude2" add sketch "Sketch1 (2)" along normal blind 3 contours L0 L39 L41 L57 L96 L99 L103 | L0 L39 L45 L109 | L17 L43 L57 L73 L80 L99 | L0 L30 L32 L45 L56 L60 L74 | L18 L43 L73 L96 | L17 L42 L85 L87 L99 | L43 L64 L73 L80 L90 A9 L116 L120 L122 | L43 L73 L80 | L16 L24 L35 L42 L43 L47 L98 | L65 L72 L85 L87 L97 | L23 L29 L32 L56 L76 L88 | L29 L40 L74 L88 | L23 L56 L77 L82 L115 | L21 L80 L81 L101 L116 | L10 L64 L90 L116 L122 | L24 L38 L98 A13 | L16 L24 L102 A13 | L25 L55 L67 L75 L87 L97 | A2 L29 L76 L88 | L29 L76 L88 | L27 L49 L54 L70 L82 L83 L88 | L4 L63 L69 L77 L115 | L10 L31 A5 L80 L116 L119 L120 L122 | L19 L34 L80 L81 L116 | L21 L36 L81 A13 | A7 L68 L116 A13 | L25 L26 L28 L52 L67 L75 | A2 L29 L86 | A2 A4 L58 L59 | A7 L116 L119 A13 | L19 L46 L81 A13 | L86 L116 A12 L121 | A2 L58 L86 L116 A12 L121 | L31 L79 L119 | L67 L100 A13 | L55 L67 L100 | L37 A7 L68 L100 A13 | L25 L55 L67 | L25 L28 L52 L67 | L22 L26 L75 L93 L95 A11 L119 | A2 L59 L76 L116 A12 | L54 L70 L71 A8 | L20 L70 A8 L83 | L4 L6 L9 L12 L13 L114 L115 L117 | L86 L113 A12 | L58 L112 L116 A12 L121 | A0 L59 L112 L116 A12 | L58 L116 A12 L121 | L15 L22 L31 L79 L93 L119 | L28 L52 L55 L67 A13 | L1 L76 L111 L116 | A1 L53 A8 L116 | L6 L9 L106 L110 | L37 A7 L119 A13 | L94 L113 L118 | L76 L113 A12 L118 | L93 A11 L119 | L28 L50 L52 | L28 L50 A13 | L95 A10 A11 L119 | L95 A10 A11 | L59 L116 A12 | L14 A8 L111 | L11 L76 L111 L116 | L76 L116 A12 | L3 A1 L53 A8 | L66 A8 L117 | L13 L66 L117 | L2 L7 L9 L95 L110 A11 L118 | L2 L7 L89 L94 L106 L113 L118 | L7 L94 L118 | L76 L113 L118 | L107 A10 A11 L118 | L7 A11 L118 | L107 A10 A11 L119 | L95 A10 A11 L118 | A1 A8 L116 L118 | L8 A8 L111 | L12 L13 A8 L114 L117 | L12 L13 L114 L117 | L12 L13 L108 L114 | L3 A1 L53 A8 | L12 A8 L108 | A1 L53 A8 L118 in component "carBodyServoPlate"
extrude "Extrude3" cut sketch "Sketch1 (2)" along normal blind 3 contours L7 L94 L118 in component "carBodyServoPlate"
extrude "Extrude5" add sketch "Sketch1 (2)" along normal blind 3 contours L31 L80 L119 in component "carBodyServoPlate"
extrude "Extrude6" add sketch "Sketch1 (2)" along normal blind 3 contours L62 L64 L90 A9 L116 | L62 A9 L116 L120 | A2 A4 L58 L61 | A2 L58 L61 A12 | A2 L59 L61 A12 | A2 A4 L59 L61 | L58 L61 L116 A12 L121 | L59 L61 L116 A12 in component "carBodyServoPlate"
extrude "Extrude7" add sketch "Sketch1 (2)" along normal blind 3 contours A5 L62 L64 L84 L90 L116 | A5 L62 L84 L116 L120 in component "carBodyServoPlate"
extrude "Extrude8" add sketch "Sketch1 (2)" along normal blind 3 contours L5 A0 L58 L61 L91 L116 L121 | L5 A0 L59 L61 L91 L116 in component "carBodyServoPlate"
component "carBodyServoPlate" placed x (1, 0, 0) y (0, 1, 0) z (0, 0, 1) at (0, 0, 0)
